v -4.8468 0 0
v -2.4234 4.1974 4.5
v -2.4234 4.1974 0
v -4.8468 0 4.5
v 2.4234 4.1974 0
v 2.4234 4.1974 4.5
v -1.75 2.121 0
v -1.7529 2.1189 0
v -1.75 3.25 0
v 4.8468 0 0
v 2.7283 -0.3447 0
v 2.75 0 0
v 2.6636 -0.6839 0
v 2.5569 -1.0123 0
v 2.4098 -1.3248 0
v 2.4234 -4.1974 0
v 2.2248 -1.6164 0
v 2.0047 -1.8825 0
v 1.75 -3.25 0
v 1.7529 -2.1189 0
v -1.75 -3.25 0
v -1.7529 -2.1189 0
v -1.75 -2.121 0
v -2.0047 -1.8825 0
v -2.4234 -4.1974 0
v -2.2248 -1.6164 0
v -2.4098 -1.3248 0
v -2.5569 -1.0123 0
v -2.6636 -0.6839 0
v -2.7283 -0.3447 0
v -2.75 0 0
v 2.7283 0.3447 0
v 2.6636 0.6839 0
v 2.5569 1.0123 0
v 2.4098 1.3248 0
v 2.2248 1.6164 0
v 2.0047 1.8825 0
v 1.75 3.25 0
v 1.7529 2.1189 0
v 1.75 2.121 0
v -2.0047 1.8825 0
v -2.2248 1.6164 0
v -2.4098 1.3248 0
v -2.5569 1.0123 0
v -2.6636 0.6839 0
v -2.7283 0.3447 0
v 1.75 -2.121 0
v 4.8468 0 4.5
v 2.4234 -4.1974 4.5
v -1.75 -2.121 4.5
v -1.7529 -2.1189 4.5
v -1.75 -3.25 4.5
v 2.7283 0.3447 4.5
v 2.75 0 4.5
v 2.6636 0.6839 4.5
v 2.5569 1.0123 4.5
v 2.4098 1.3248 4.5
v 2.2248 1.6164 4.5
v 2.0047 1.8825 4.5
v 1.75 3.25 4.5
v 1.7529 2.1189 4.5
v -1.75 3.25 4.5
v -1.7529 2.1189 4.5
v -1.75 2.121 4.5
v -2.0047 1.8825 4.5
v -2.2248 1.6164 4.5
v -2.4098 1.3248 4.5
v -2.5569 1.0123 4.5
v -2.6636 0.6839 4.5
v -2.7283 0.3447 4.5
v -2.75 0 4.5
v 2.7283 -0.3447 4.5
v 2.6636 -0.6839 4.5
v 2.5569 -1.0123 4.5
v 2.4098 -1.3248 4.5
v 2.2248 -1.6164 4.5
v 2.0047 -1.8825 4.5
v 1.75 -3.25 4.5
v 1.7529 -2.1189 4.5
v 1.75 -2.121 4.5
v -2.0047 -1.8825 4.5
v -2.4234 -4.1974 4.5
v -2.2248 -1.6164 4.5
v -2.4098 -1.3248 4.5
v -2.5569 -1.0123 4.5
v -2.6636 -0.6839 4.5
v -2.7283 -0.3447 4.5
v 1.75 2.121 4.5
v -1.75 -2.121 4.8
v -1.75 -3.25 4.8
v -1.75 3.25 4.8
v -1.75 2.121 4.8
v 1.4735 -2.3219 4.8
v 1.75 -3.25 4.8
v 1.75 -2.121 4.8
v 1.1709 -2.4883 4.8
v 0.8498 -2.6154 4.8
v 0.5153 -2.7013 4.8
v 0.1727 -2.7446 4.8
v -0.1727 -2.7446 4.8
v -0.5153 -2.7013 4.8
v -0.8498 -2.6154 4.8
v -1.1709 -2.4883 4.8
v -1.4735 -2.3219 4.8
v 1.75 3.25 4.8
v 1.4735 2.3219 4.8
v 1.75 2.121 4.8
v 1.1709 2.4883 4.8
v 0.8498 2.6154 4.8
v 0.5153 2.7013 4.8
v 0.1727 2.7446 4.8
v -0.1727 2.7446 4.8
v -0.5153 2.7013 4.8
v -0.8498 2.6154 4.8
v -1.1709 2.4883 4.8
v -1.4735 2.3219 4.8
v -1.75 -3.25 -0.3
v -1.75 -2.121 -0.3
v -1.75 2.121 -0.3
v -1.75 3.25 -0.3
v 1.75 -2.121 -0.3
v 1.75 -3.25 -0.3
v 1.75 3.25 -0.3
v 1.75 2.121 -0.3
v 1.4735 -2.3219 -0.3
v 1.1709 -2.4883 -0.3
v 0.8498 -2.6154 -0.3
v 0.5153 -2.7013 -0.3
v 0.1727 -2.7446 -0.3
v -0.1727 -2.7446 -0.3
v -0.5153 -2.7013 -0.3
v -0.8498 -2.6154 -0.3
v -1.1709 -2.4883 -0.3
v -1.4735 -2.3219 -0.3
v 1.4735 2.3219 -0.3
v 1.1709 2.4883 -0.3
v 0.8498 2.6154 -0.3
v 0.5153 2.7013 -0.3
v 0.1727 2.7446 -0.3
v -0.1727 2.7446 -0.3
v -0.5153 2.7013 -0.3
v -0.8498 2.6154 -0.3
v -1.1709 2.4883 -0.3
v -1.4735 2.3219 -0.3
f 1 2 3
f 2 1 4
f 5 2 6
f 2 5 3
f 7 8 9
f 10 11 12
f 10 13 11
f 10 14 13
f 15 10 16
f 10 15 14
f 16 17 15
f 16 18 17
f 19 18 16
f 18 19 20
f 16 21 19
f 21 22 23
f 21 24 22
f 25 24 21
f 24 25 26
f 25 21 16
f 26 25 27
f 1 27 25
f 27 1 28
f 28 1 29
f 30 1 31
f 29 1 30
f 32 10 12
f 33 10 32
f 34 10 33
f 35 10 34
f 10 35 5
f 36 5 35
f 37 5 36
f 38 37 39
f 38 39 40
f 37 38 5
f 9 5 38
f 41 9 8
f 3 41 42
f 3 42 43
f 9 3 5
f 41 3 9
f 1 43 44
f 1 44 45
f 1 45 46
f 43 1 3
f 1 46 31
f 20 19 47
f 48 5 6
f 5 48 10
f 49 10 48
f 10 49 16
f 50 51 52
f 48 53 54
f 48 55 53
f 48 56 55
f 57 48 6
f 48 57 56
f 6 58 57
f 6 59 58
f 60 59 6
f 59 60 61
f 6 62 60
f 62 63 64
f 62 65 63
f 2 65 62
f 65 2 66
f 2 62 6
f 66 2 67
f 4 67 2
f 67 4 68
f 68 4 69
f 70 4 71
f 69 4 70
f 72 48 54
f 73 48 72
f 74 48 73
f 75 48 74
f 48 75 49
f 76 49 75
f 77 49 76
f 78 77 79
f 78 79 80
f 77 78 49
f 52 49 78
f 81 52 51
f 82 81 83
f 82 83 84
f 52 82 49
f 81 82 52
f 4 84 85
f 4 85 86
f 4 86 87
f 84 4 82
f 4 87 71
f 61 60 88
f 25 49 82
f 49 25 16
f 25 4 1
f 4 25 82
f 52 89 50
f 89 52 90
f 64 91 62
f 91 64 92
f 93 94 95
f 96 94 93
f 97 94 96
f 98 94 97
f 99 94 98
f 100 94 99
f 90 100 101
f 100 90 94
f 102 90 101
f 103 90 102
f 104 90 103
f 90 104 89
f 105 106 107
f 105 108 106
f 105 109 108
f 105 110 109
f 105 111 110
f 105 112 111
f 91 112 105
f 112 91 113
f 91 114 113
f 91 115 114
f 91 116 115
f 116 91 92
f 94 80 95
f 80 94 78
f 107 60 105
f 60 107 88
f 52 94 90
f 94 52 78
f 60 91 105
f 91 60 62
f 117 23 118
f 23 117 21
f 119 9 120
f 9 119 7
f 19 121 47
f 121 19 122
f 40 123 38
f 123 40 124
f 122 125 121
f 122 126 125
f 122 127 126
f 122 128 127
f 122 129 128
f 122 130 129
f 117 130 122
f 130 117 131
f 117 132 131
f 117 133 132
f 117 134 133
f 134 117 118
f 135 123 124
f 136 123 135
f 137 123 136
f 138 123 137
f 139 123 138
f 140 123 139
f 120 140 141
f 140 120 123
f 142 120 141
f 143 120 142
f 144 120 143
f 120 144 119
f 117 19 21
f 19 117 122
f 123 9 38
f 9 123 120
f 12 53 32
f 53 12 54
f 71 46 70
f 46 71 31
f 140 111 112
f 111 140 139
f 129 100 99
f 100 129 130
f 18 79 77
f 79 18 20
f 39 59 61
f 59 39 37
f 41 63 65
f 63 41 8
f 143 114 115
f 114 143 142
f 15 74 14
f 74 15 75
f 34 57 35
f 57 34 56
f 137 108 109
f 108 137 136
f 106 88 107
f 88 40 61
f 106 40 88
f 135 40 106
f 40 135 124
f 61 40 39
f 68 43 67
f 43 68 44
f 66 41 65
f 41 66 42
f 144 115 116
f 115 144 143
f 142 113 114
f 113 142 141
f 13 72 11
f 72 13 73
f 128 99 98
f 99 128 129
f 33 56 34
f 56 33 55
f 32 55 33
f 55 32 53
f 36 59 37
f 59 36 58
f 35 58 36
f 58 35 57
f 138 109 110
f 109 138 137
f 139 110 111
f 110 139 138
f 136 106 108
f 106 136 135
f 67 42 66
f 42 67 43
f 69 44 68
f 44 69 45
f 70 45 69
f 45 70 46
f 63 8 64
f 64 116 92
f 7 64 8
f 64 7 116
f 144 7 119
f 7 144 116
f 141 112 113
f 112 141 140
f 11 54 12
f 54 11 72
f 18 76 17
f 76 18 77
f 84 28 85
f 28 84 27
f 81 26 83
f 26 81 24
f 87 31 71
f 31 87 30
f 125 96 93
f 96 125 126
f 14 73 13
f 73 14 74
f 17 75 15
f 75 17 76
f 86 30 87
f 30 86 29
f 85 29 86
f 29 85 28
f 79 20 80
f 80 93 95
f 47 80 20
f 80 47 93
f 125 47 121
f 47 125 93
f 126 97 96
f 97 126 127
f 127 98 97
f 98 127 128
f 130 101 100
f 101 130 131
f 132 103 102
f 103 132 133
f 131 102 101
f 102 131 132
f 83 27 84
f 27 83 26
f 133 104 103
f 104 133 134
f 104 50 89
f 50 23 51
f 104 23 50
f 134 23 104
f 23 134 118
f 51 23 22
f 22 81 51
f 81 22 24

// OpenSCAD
$fn = 50;


difference() {
	union() {
		translate(v = [0, 0, 0]) {
			rotate(a = [0, 0, 0]) {
				translate(v = [0, 0, 0]) {
					rotate(a = [0, 0, 0]) {
						linear_extrude(height = 4.5000000000) {
							polygon(points = [[4.8468000000, 0.0000000000], [2.4234000000, 4.1974519271], [-2.4234000000, 4.1974519271], [-4.8468000000, 0.0000000000], [-2.4234000000, -4.1974519271], [2.4234000000, -4.1974519271]]);
						}
					}
				}
			}
		}
		#translate(v = [-1.7500000000, -3.2500000000, 4.5000000000]) {
			rotate(a = [0, 0, 0]) {
				cube(size = [3.5000000000, 6.5000000000, 0.3000000000]);
			}
		}
		#translate(v = [-1.7500000000, -1.7500000000, 4.8000000000]) {
			rotate(a = [0, 0, 0]) {
				cube(size = [3.5000000000, 3.5000000000, 0.3000000000]);
			}
		}
		#translate(v = [-1.7500000000, -3.2500000000, -0.3000000000]) {
			rotate(a = [0, 0, 0]) {
				cube(size = [3.5000000000, 6.5000000000, 0.3000000000]);
			}
		}
		#translate(v = [-1.7500000000, -1.7500000000, -0.6000000000]) {
			rotate(a = [0, 0, 0]) {
				cube(size = [3.5000000000, 3.5000000000, 0.3000000000]);
			}
		}
	}
	union() {
		translate(v = [0, 0, -10]) {
			rotate(a = [0, 0, 0]) {
				cylinder(h = 100, r = 2.7500000000);
			}
		}
	}
}
